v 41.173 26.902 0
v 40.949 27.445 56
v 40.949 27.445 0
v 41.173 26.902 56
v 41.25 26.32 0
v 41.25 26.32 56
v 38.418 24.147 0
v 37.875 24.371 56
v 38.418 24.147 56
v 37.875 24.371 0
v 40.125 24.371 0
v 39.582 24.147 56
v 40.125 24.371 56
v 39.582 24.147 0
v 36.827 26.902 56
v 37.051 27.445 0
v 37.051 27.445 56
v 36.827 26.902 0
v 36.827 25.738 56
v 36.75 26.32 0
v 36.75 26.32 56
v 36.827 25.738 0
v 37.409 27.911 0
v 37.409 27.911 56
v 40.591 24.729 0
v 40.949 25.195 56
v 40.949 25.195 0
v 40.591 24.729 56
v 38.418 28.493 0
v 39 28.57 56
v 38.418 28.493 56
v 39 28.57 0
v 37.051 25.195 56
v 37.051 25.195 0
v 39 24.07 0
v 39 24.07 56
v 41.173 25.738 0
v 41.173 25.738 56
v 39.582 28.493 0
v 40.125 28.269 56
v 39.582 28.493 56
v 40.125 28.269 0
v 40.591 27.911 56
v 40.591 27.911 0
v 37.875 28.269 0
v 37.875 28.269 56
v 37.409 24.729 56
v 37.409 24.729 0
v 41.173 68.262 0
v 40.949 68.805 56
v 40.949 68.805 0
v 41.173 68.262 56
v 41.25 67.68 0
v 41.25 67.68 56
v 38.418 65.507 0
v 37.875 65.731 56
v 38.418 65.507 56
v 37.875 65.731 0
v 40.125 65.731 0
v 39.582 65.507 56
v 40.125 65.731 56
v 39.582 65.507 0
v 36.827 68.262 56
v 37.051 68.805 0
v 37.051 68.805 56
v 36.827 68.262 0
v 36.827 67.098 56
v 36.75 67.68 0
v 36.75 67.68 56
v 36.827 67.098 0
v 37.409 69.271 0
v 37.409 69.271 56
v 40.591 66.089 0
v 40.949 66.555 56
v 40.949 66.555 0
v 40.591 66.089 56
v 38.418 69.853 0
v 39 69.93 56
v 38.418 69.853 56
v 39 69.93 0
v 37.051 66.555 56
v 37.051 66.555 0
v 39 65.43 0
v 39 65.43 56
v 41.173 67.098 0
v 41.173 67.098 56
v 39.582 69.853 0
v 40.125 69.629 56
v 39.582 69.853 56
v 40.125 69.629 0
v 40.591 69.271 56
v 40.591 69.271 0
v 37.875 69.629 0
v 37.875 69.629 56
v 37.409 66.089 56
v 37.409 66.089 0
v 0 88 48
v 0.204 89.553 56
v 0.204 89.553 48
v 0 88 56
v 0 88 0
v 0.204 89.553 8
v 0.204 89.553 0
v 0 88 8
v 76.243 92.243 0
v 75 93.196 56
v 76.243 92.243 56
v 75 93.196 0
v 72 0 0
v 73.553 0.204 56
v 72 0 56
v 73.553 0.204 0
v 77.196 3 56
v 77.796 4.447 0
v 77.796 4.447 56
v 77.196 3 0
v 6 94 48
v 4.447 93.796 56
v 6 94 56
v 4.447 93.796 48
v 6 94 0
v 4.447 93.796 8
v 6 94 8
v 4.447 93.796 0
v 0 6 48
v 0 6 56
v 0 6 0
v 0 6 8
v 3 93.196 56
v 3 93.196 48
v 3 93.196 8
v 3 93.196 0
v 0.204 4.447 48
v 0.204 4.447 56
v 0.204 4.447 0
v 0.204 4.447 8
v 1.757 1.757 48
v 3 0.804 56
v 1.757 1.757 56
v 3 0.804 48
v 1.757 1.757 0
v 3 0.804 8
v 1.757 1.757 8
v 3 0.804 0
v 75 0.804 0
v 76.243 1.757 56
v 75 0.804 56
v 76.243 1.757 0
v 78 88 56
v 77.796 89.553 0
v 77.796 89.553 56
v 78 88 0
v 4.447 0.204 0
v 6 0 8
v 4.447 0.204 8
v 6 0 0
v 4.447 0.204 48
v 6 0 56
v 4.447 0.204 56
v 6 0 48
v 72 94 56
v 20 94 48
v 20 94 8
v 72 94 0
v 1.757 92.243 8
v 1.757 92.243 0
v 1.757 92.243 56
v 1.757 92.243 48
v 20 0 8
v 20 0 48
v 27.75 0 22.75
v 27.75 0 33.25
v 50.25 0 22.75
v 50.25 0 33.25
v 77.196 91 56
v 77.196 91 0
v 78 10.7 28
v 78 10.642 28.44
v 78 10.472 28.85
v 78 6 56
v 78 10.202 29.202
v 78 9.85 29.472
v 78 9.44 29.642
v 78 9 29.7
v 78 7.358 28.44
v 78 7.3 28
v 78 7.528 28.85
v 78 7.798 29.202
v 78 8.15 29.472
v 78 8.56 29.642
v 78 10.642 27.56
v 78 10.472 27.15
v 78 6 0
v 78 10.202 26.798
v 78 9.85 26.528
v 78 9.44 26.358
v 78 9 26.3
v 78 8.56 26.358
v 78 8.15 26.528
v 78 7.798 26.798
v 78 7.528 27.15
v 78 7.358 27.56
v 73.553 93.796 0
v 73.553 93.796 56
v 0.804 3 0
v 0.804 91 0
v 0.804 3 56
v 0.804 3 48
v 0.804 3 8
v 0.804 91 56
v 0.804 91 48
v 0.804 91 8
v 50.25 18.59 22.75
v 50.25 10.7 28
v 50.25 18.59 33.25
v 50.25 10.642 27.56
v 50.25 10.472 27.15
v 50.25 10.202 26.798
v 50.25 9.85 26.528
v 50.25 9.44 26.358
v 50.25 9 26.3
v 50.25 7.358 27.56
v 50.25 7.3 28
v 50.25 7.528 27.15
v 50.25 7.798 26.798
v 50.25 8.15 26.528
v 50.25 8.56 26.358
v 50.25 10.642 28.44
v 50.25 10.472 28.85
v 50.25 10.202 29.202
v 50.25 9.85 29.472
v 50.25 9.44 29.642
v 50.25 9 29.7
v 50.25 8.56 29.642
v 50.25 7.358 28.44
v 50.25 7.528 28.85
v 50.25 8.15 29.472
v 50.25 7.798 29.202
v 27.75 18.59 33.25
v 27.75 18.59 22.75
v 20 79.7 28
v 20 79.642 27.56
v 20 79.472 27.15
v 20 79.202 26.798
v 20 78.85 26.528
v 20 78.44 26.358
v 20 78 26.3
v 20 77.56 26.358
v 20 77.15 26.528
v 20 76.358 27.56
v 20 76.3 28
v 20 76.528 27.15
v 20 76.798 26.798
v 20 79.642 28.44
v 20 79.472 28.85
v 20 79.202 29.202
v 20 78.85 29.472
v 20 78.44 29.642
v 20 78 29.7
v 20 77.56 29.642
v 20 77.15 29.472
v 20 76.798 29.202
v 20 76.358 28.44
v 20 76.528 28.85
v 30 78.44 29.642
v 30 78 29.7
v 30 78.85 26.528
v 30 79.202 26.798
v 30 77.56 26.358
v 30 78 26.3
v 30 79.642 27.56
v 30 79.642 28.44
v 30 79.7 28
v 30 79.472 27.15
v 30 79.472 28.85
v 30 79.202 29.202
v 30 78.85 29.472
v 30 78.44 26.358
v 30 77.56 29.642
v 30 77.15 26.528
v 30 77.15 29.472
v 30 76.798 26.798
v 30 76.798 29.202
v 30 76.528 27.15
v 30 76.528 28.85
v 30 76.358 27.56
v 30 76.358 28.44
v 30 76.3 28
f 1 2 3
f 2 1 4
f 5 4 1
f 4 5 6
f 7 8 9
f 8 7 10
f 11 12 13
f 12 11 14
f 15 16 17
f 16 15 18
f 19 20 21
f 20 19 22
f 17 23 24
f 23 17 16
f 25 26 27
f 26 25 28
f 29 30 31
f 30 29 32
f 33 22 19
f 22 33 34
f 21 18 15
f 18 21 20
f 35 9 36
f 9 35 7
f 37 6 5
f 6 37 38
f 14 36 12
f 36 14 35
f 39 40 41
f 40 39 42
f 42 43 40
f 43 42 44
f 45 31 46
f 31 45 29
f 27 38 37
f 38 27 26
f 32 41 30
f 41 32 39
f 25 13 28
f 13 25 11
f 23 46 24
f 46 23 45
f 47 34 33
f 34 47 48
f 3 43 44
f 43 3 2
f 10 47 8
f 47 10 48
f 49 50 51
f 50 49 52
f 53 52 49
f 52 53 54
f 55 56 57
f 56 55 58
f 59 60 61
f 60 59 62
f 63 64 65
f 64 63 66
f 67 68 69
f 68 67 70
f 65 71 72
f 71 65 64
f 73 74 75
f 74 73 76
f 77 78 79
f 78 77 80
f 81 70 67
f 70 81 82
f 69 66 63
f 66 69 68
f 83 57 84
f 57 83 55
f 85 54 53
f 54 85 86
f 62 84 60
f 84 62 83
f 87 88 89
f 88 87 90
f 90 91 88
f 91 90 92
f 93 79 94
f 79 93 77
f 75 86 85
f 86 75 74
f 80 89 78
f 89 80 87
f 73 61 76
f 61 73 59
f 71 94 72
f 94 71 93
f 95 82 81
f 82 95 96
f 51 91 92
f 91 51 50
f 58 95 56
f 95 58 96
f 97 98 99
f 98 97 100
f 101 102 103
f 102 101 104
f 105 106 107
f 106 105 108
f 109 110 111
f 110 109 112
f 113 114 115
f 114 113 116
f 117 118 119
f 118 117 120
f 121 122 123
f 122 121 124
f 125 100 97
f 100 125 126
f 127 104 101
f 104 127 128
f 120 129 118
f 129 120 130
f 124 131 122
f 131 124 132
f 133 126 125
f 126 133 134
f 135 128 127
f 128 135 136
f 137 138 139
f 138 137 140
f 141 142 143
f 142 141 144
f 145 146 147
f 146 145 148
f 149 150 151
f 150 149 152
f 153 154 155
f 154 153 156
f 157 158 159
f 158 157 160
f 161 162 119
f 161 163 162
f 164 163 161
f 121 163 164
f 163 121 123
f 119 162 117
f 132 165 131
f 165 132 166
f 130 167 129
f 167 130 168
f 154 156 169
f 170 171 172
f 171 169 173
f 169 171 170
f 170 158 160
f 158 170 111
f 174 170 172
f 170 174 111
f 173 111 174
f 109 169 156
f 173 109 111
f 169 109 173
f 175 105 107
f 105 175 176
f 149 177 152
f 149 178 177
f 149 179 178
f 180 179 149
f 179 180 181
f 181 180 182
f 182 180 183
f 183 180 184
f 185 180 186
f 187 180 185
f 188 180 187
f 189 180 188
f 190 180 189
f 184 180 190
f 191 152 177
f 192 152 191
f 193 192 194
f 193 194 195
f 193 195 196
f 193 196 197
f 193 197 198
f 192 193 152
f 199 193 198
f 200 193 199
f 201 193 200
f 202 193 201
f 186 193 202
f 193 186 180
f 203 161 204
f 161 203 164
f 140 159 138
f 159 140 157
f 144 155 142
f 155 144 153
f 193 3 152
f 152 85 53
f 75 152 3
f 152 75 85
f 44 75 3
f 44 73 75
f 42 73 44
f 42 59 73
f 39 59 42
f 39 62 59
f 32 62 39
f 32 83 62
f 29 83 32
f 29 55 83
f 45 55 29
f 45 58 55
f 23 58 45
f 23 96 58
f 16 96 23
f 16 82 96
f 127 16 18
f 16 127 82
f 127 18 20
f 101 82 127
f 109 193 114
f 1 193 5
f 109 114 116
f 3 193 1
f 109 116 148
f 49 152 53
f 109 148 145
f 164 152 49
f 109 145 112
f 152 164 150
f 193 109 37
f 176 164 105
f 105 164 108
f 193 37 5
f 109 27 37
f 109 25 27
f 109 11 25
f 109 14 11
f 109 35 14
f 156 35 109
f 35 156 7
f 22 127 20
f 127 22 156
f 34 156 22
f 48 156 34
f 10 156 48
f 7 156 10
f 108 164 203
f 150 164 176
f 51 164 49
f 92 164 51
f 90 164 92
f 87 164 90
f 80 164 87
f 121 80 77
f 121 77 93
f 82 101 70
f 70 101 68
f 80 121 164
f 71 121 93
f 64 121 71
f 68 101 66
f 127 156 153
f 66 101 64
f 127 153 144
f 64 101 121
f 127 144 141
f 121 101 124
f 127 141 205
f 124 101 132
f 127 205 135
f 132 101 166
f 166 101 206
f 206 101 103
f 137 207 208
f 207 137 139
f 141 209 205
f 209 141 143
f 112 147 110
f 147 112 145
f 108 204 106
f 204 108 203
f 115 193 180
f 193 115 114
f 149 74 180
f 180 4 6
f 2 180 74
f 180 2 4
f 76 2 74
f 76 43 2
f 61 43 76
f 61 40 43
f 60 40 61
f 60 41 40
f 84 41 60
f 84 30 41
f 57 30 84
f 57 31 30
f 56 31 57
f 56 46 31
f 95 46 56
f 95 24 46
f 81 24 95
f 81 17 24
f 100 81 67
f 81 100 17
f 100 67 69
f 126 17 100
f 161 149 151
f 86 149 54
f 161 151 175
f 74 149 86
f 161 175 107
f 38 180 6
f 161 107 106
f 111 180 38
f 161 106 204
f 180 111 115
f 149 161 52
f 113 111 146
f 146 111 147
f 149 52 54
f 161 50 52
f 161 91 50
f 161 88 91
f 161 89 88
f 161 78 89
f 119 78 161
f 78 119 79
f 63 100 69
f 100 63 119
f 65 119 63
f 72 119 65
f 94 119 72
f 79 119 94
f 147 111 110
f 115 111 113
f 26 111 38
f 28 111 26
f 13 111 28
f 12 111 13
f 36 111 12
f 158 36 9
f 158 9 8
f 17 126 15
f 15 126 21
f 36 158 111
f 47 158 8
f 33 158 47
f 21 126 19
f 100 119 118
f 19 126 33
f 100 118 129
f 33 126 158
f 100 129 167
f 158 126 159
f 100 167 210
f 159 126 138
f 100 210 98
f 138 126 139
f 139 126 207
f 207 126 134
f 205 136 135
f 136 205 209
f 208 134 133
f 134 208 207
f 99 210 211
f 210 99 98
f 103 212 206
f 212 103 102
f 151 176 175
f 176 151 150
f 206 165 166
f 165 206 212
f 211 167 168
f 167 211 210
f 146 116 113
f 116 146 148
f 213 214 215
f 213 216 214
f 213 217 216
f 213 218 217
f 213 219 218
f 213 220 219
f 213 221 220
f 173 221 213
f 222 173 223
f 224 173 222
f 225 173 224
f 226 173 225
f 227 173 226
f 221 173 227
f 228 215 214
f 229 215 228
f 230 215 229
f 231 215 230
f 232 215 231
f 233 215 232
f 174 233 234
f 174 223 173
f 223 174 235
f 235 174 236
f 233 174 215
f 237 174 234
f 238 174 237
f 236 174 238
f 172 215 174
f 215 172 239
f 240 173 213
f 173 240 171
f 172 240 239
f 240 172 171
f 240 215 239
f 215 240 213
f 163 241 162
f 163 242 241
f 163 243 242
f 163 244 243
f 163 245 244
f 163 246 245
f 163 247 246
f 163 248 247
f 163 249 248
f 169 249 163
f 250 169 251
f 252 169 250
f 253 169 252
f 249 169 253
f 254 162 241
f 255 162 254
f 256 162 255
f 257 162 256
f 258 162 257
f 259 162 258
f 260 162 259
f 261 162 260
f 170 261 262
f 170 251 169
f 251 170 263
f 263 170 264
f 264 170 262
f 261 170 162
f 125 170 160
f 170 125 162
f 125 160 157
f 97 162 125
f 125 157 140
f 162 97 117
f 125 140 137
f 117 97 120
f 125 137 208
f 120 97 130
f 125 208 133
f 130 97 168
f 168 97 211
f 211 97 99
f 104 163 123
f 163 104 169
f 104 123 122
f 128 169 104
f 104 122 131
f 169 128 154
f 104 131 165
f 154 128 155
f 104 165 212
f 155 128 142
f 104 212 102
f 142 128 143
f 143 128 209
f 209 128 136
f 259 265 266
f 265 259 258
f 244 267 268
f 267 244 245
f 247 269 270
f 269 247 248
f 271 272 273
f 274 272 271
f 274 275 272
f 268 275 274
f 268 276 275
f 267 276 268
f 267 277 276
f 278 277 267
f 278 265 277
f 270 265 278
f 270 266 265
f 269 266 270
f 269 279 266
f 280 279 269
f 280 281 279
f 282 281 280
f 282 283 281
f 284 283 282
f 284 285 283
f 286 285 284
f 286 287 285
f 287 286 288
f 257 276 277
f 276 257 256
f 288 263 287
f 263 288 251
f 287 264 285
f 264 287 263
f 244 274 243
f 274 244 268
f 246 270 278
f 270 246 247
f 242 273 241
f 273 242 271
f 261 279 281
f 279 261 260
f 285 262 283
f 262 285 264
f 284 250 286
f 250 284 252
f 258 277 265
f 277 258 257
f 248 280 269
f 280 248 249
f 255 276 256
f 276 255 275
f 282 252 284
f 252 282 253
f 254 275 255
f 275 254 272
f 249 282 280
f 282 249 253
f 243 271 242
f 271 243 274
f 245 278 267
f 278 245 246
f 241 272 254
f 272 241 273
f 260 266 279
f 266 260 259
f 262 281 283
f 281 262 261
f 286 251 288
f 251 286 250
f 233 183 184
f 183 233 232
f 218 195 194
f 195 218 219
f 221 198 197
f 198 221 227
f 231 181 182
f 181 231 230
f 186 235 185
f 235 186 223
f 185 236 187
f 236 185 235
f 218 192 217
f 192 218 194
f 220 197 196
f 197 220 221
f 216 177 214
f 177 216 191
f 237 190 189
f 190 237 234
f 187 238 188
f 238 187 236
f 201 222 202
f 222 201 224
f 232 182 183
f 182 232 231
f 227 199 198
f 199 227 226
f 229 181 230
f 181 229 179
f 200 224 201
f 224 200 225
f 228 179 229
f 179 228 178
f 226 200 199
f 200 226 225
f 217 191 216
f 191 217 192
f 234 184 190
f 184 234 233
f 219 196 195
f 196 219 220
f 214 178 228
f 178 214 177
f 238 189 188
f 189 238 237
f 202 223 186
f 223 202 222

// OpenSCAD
// file: 00_parameters.scad
// TenderCells DoorCell V1 shared parameters
// Units: millimeters

overall_w = 438;
overall_h = 368;
frame_depth = 56;

clear_w = 242;
clear_h = 312;

rail_thick = 32;
jamb_w = 48;
motor_jamb_w = 78;

// Printability targets
target_bed_xy = 220;
comfortable_part_max = 180;

// Modular frame split dimensions
top_seg_len = overall_w / 3;
bottom_seg_len = overall_w / 3;
left_jamb_seg_h = overall_h / 2;
right_lower_h = 118;
right_motor_h = 156;
right_upper_h = overall_h - right_lower_h - right_motor_h;

// Low-cost electronics envelope used by DoorCell V1.4.
// These dimensions are based on common generic modules, not a custom PCB.
esp32_board = [58, 31, 8];
drv8871_board = [31, 26, 7];
current_sensor_board = [26, 22, 7];
lm2596_board = [44, 22, 14];
inline_fuse_body = [45, 15, 14];
cn3065_board = [44, 24, 8];
electronics_clearance = 1.5;
controller_wall = 3;
controller_box_w = 170;
controller_box_h = 115;
controller_box_d = 46;
controller_lid_insert_offset = 11;
controller_m12_gland_d = 12.8;
controller_m10_gland_d = 10.6;
controller_m8_gland_d = 8.4;
controller_button_d = 16.2;

// Brass heat-set/push-in insert features.
insert_post_d = 8.0;
insert_post_h = 8.0;
insert_pilot_d = 4.6;
insert_pilot_depth = 6.5;
hold_down_screw_clearance = 3.4;

// Motor envelope for common 25GA/JGA25-370 gearmotors with optional encoder.
motor_body_d = 25.0;
motor_body_clearance_d = 27.2;
motor_body_len = 65;
motor_encoder_clearance = 16;
motor_mount_plate = [72, 92, 12];
motor_mount_cradle = [54, 74, 28];

// Optional solar add-on.
solar_panel_w = 145;
solar_panel_h = 145;
solar_panel_t = 4.0;
solar_panel_frame_border = 10;
solar_panel_frame_w = solar_panel_w + 2*solar_panel_frame_border;
solar_panel_frame_h = solar_panel_h + 2*solar_panel_frame_border;
solar_panel_back_depth = 14;
solar_panel_lip_overlap = 3;
solar_ball_d = 22;
solar_ball_socket_clearance = 0.45;
solar_mount_m5 = 5.4;

// Tongue-and-groove frame joints
// Fit target: common FDM printers with PETG/ASA.
// Clearance is per side, so sockets add 2x this value.
tongue_len = 18;
tongue_w = 22;
tongue_z = 10;
tongue_clearance_side = 0.25;
tongue_socket_depth_extra = 0.60;

door_w = 270;
door_h = 326;
door_t = 8;

track_gap = 11;
track_depth = 12;

// Rack-and-pinion drive
// Metric module gear math:
// circular_pitch = PI * module
// pitch_diameter = module * tooth_count
// outside_diameter = module * (tooth_count + 2)
// root_diameter = module * (tooth_count - 2.5)
gear_module = 2.0;
pressure_angle = 20;
gear_backlash = 0.20; // mm removed from rack tooth thickness at pitch line

pinion_teeth = 16;
pinion_pitch_d = gear_module * pinion_teeth;
pinion_pitch_radius = pinion_pitch_d / 2;
pinion_outer_d = gear_module * (pinion_teeth + 2);
pinion_outer_radius = pinion_outer_d / 2;
pinion_root_d = gear_module * (pinion_teeth - 2.5);
pinion_root_radius = pinion_root_d / 2;
pinion_thick = 12;
shaft_d = 6.2;

rack_tooth_count = 15;
rack_circular_pitch = 3.141592653589793 * gear_module;
rack_len = rack_circular_pitch * rack_tooth_count;
rack_w = 18;
rack_t = 6;
rack_addendum = gear_module;
rack_dedendum = 1.25 * gear_module;
rack_tooth_h = rack_addendum + rack_dedendum;
rack_pitch_line_z = rack_dedendum;
rack_tooth_pitch_thickness = rack_circular_pitch / 2 - gear_backlash;
rack_tooth_top_w = rack_tooth_pitch_thickness - 2 * rack_addendum * tan(pressure_angle);
rack_tooth_root_w = rack_tooth_pitch_thickness + 2 * rack_dedendum * tan(pressure_angle);

screw_m3 = 3.4;
screw_m4 = 4.5;
insert_m3 = 4.6;

eps = 0.01;

module rounded_box(size=[10,10,10], r=2) {
  hull() {
    translate([r,r,0]) cylinder(h=size[2], r=r, $fn=24);
    translate([size[0]-r,r,0]) cylinder(h=size[2], r=r, $fn=24);
    translate([r,size[1]-r,0]) cylinder(h=size[2], r=r, $fn=24);
    translate([size[0]-r,size[1]-r,0]) cylinder(h=size[2], r=r, $fn=24);
  }
}

module m3_clearance_hole(h=20) {
  cylinder(h=h, d=screw_m3, $fn=24);
}

module m4_clearance_hole(h=20) {
  cylinder(h=h, d=screw_m4, $fn=24);
}

module heat_insert_hole(h=6) {
  cylinder(h=h, d=insert_m3, $fn=24);
}

module heat_insert_post(h=insert_post_h, d=insert_post_d) {
  difference() {
    cylinder(h=h, d=d, $fn=32);
    translate([0,0,h-insert_pilot_depth+eps])
      cylinder(h=insert_pilot_depth+eps, d=insert_pilot_d, $fn=24);
  }
}

module m3_hold_down_slot(length=10, h=4) {
  hull() {
    translate([-length/2,0,0]) cylinder(h=h, d=hold_down_screw_clearance, $fn=20);
    translate([ length/2,0,0]) cylinder(h=h, d=hold_down_screw_clearance, $fn=20);
  }
}

module rail_channel(length=100) {
  cube([length, track_gap, track_depth]);
}

module frame_tongue_x() {
  rounded_box([tongue_len, tongue_w, tongue_z], r=1.5);
}

module frame_socket_x() {
  cube([
    tongue_len + tongue_socket_depth_extra,
    tongue_w + 2*tongue_clearance_side,
    tongue_z + 2*tongue_clearance_side
  ]);
}

module frame_tongue_y() {
  rounded_box([tongue_w, tongue_len, tongue_z], r=1.5);
}

module frame_socket_y() {
  cube([
    tongue_w + 2*tongue_clearance_side,
    tongue_len + tongue_socket_depth_extra,
    tongue_z + 2*tongue_clearance_side
  ]);
}

module rack_teeth(len=rack_len) {
  teeth = floor(len / rack_circular_pitch);
  for (i=[0:teeth-1]) {
    center = i*rack_circular_pitch + rack_circular_pitch/2;
    translate([0, 0, rack_t-0.20])
      linear_extrude(height=rack_w)
        polygon(points=[
          [center - rack_tooth_root_w/2, 0],
          [center + rack_tooth_root_w/2, 0],
          [center + rack_tooth_top_w/2, rack_tooth_h],
          [center - rack_tooth_top_w/2, rack_tooth_h]
        ]);
  }
}

function polar_point(r, a) = [r * cos(a), r * sin(a)];
// file: frame_modular_common.scad
include <00_parameters.scad>

module horizontal_frame_segment(seg_len=top_seg_len, rail_kind="top", joint_left="socket", joint_right="tongue") {
  difference() {
    union() {
      rounded_box([seg_len, rail_thick, frame_depth], r=6);

      if (joint_right == "tongue") {
        translate([seg_len - eps, rail_thick/2 - tongue_w/2, frame_depth/2 - tongue_z/2])
          frame_tongue_x();
      }
    }

    // Tongue receiver from previous segment.
    if (joint_left == "socket") {
      translate([
        -eps,
        rail_thick/2 - (tongue_w + 2*tongue_clearance_side)/2,
        frame_depth/2 - (tongue_z + 2*tongue_clearance_side)/2
      ])
        frame_socket_x();
    }

    // Sliding door guide channel.
    if (rail_kind == "top") {
      translate([8, rail_thick-track_gap-5, 8])
        rail_channel(length=seg_len-16);
    } else {
      translate([8, 5, frame_depth-track_depth-8])
        rail_channel(length=seg_len-16);

      // Drain slots for bottom rail.
      for (x=[seg_len*0.25, seg_len*0.5, seg_len*0.75]) {
        translate([x-10, rail_thick/2-2, frame_depth-4])
          cube([20, 4, 10]);
      }
    }

    // Coop mounting holes.
    for (x=[18, seg_len-18]) {
      translate([x, rail_thick/2, -eps])
        m4_clearance_hole(h=frame_depth+2);
    }

    // Cross-bolt holes near frame split joints.
    if (joint_left == "socket") {
      translate([tongue_len/2, rail_thick/2, frame_depth/2])
        rotate([90,0,0]) m3_clearance_hole(h=rail_thick+2);
    }
    if (joint_right == "tongue") {
      translate([seg_len + tongue_len/2 - 2, rail_thick/2, frame_depth/2])
        rotate([90,0,0]) m3_clearance_hole(h=rail_thick+2);
    }
  }
}

module left_jamb_segment(seg_h=left_jamb_seg_h, joint_bottom="socket", joint_top="tongue", corner_bottom=false, corner_top=false) {
  difference() {
    union() {
      rounded_box([jamb_w, seg_h, frame_depth], r=6);

      if (joint_top == "tongue") {
        translate([jamb_w/2 - tongue_w/2, seg_h - eps, frame_depth/2 - tongue_z/2])
          frame_tongue_y();
      }
    }

    if (joint_bottom == "socket") {
      translate([
        jamb_w/2 - (tongue_w + 2*tongue_clearance_side)/2,
        -eps,
        frame_depth/2 - (tongue_z + 2*tongue_clearance_side)/2
      ])
        frame_socket_y();
    }

    // Door pocket relief.
    translate([jamb_w-18, 0, 8])
      cube([16, seg_h, frame_depth-16]);

    // Coop mounting holes.
    for (y=[seg_h*0.28, seg_h*0.72]) {
      translate([jamb_w/2, y, -eps]) m4_clearance_hole(h=frame_depth+2);
    }

    // Rail-to-jamb corner holes.
    if (corner_bottom) {
      translate([jamb_w-10, 16, frame_depth/2])
        rotate([0,90,0]) m3_clearance_hole(h=20);
    }
    if (corner_top) {
      translate([jamb_w-10, seg_h-16, frame_depth/2])
        rotate([0,90,0]) m3_clearance_hole(h=20);
    }

    // Cross-bolt through tongue-and-groove.
    if (joint_bottom == "socket") {
      translate([jamb_w/2, tongue_len/2, frame_depth/2])
        rotate([0,90,0]) m3_clearance_hole(h=jamb_w+2);
    }
    if (joint_top == "tongue") {
      translate([jamb_w/2, seg_h + tongue_len/2 - 2, frame_depth/2])
        rotate([0,90,0]) m3_clearance_hole(h=jamb_w+2);
    }
  }
}

module right_jamb_segment(seg_h=120, has_motor_bay=false, joint_bottom="socket", joint_top="tongue", corner_bottom=false, corner_top=false) {
  difference() {
    union() {
      rounded_box([motor_jamb_w, seg_h, frame_depth], r=6);

      if (has_motor_bay) {
        translate([motor_jamb_w-8, 20, 0])
          rounded_box([70, seg_h-32, frame_depth], r=5);
      }

      if (joint_top == "tongue") {
        translate([motor_jamb_w/2 - tongue_w/2, seg_h - eps, frame_depth/2 - tongue_z/2])
          frame_tongue_y();
      }
    }

    if (joint_bottom == "socket") {
      translate([
        motor_jamb_w/2 - (tongue_w + 2*tongue_clearance_side)/2,
        -eps,
        frame_depth/2 - (tongue_z + 2*tongue_clearance_side)/2
      ])
        frame_socket_y();
    }

    // Door pocket relief.
    translate([0, 0, 8])
      cube([20, seg_h, frame_depth-16]);

    if (has_motor_bay) {
      // Motor cassette pocket sized for the revised 25GA mount.
      translate([motor_jamb_w+5, 33, 8])
        cube([62, 92, 40]);

      // Pinion/rack engagement window.
      translate([4, 68, 16])
        cube([46, 36, 24]);

      // Motor/control harness pass-through for M12-style cable gland routing.
      translate([motor_jamb_w+26, seg_h-42, 16])
        cube([24, 34, 26]);

      // Limit switch lead pass-throughs.
      translate([motor_jamb_w-2, 18, 18])
        cube([16, 18, 16]);
      translate([motor_jamb_w-2, seg_h-36, 18])
        cube([16, 18, 16]);
    }

    // Coop mounting holes.
    for (y=[seg_h*0.28, seg_h*0.72]) {
      translate([motor_jamb_w/2, y, -eps]) m4_clearance_hole(h=frame_depth+2);
    }

    // Rail-to-jamb corner holes.
    if (corner_bottom) {
      translate([10, 16, frame_depth/2])
        rotate([0,90,0]) m3_clearance_hole(h=20);
    }
    if (corner_top) {
      translate([10, seg_h-16, frame_depth/2])
        rotate([0,90,0]) m3_clearance_hole(h=20);
    }

    // Cross-bolt through tongue-and-groove.
    if (joint_bottom == "socket") {
      translate([motor_jamb_w/2, tongue_len/2, frame_depth/2])
        rotate([0,90,0]) m3_clearance_hole(h=motor_jamb_w+2);
    }
    if (joint_top == "tongue") {
      translate([motor_jamb_w/2, seg_h + tongue_len/2 - 2, frame_depth/2])
        rotate([0,90,0]) m3_clearance_hole(h=motor_jamb_w+2);
    }
  }
}
// main file
include <frame_modular_common.scad>

right_jamb_segment(seg_h=right_upper_h, has_motor_bay=false, joint_bottom="socket", joint_top="none", corner_bottom=false, corner_top=true);
